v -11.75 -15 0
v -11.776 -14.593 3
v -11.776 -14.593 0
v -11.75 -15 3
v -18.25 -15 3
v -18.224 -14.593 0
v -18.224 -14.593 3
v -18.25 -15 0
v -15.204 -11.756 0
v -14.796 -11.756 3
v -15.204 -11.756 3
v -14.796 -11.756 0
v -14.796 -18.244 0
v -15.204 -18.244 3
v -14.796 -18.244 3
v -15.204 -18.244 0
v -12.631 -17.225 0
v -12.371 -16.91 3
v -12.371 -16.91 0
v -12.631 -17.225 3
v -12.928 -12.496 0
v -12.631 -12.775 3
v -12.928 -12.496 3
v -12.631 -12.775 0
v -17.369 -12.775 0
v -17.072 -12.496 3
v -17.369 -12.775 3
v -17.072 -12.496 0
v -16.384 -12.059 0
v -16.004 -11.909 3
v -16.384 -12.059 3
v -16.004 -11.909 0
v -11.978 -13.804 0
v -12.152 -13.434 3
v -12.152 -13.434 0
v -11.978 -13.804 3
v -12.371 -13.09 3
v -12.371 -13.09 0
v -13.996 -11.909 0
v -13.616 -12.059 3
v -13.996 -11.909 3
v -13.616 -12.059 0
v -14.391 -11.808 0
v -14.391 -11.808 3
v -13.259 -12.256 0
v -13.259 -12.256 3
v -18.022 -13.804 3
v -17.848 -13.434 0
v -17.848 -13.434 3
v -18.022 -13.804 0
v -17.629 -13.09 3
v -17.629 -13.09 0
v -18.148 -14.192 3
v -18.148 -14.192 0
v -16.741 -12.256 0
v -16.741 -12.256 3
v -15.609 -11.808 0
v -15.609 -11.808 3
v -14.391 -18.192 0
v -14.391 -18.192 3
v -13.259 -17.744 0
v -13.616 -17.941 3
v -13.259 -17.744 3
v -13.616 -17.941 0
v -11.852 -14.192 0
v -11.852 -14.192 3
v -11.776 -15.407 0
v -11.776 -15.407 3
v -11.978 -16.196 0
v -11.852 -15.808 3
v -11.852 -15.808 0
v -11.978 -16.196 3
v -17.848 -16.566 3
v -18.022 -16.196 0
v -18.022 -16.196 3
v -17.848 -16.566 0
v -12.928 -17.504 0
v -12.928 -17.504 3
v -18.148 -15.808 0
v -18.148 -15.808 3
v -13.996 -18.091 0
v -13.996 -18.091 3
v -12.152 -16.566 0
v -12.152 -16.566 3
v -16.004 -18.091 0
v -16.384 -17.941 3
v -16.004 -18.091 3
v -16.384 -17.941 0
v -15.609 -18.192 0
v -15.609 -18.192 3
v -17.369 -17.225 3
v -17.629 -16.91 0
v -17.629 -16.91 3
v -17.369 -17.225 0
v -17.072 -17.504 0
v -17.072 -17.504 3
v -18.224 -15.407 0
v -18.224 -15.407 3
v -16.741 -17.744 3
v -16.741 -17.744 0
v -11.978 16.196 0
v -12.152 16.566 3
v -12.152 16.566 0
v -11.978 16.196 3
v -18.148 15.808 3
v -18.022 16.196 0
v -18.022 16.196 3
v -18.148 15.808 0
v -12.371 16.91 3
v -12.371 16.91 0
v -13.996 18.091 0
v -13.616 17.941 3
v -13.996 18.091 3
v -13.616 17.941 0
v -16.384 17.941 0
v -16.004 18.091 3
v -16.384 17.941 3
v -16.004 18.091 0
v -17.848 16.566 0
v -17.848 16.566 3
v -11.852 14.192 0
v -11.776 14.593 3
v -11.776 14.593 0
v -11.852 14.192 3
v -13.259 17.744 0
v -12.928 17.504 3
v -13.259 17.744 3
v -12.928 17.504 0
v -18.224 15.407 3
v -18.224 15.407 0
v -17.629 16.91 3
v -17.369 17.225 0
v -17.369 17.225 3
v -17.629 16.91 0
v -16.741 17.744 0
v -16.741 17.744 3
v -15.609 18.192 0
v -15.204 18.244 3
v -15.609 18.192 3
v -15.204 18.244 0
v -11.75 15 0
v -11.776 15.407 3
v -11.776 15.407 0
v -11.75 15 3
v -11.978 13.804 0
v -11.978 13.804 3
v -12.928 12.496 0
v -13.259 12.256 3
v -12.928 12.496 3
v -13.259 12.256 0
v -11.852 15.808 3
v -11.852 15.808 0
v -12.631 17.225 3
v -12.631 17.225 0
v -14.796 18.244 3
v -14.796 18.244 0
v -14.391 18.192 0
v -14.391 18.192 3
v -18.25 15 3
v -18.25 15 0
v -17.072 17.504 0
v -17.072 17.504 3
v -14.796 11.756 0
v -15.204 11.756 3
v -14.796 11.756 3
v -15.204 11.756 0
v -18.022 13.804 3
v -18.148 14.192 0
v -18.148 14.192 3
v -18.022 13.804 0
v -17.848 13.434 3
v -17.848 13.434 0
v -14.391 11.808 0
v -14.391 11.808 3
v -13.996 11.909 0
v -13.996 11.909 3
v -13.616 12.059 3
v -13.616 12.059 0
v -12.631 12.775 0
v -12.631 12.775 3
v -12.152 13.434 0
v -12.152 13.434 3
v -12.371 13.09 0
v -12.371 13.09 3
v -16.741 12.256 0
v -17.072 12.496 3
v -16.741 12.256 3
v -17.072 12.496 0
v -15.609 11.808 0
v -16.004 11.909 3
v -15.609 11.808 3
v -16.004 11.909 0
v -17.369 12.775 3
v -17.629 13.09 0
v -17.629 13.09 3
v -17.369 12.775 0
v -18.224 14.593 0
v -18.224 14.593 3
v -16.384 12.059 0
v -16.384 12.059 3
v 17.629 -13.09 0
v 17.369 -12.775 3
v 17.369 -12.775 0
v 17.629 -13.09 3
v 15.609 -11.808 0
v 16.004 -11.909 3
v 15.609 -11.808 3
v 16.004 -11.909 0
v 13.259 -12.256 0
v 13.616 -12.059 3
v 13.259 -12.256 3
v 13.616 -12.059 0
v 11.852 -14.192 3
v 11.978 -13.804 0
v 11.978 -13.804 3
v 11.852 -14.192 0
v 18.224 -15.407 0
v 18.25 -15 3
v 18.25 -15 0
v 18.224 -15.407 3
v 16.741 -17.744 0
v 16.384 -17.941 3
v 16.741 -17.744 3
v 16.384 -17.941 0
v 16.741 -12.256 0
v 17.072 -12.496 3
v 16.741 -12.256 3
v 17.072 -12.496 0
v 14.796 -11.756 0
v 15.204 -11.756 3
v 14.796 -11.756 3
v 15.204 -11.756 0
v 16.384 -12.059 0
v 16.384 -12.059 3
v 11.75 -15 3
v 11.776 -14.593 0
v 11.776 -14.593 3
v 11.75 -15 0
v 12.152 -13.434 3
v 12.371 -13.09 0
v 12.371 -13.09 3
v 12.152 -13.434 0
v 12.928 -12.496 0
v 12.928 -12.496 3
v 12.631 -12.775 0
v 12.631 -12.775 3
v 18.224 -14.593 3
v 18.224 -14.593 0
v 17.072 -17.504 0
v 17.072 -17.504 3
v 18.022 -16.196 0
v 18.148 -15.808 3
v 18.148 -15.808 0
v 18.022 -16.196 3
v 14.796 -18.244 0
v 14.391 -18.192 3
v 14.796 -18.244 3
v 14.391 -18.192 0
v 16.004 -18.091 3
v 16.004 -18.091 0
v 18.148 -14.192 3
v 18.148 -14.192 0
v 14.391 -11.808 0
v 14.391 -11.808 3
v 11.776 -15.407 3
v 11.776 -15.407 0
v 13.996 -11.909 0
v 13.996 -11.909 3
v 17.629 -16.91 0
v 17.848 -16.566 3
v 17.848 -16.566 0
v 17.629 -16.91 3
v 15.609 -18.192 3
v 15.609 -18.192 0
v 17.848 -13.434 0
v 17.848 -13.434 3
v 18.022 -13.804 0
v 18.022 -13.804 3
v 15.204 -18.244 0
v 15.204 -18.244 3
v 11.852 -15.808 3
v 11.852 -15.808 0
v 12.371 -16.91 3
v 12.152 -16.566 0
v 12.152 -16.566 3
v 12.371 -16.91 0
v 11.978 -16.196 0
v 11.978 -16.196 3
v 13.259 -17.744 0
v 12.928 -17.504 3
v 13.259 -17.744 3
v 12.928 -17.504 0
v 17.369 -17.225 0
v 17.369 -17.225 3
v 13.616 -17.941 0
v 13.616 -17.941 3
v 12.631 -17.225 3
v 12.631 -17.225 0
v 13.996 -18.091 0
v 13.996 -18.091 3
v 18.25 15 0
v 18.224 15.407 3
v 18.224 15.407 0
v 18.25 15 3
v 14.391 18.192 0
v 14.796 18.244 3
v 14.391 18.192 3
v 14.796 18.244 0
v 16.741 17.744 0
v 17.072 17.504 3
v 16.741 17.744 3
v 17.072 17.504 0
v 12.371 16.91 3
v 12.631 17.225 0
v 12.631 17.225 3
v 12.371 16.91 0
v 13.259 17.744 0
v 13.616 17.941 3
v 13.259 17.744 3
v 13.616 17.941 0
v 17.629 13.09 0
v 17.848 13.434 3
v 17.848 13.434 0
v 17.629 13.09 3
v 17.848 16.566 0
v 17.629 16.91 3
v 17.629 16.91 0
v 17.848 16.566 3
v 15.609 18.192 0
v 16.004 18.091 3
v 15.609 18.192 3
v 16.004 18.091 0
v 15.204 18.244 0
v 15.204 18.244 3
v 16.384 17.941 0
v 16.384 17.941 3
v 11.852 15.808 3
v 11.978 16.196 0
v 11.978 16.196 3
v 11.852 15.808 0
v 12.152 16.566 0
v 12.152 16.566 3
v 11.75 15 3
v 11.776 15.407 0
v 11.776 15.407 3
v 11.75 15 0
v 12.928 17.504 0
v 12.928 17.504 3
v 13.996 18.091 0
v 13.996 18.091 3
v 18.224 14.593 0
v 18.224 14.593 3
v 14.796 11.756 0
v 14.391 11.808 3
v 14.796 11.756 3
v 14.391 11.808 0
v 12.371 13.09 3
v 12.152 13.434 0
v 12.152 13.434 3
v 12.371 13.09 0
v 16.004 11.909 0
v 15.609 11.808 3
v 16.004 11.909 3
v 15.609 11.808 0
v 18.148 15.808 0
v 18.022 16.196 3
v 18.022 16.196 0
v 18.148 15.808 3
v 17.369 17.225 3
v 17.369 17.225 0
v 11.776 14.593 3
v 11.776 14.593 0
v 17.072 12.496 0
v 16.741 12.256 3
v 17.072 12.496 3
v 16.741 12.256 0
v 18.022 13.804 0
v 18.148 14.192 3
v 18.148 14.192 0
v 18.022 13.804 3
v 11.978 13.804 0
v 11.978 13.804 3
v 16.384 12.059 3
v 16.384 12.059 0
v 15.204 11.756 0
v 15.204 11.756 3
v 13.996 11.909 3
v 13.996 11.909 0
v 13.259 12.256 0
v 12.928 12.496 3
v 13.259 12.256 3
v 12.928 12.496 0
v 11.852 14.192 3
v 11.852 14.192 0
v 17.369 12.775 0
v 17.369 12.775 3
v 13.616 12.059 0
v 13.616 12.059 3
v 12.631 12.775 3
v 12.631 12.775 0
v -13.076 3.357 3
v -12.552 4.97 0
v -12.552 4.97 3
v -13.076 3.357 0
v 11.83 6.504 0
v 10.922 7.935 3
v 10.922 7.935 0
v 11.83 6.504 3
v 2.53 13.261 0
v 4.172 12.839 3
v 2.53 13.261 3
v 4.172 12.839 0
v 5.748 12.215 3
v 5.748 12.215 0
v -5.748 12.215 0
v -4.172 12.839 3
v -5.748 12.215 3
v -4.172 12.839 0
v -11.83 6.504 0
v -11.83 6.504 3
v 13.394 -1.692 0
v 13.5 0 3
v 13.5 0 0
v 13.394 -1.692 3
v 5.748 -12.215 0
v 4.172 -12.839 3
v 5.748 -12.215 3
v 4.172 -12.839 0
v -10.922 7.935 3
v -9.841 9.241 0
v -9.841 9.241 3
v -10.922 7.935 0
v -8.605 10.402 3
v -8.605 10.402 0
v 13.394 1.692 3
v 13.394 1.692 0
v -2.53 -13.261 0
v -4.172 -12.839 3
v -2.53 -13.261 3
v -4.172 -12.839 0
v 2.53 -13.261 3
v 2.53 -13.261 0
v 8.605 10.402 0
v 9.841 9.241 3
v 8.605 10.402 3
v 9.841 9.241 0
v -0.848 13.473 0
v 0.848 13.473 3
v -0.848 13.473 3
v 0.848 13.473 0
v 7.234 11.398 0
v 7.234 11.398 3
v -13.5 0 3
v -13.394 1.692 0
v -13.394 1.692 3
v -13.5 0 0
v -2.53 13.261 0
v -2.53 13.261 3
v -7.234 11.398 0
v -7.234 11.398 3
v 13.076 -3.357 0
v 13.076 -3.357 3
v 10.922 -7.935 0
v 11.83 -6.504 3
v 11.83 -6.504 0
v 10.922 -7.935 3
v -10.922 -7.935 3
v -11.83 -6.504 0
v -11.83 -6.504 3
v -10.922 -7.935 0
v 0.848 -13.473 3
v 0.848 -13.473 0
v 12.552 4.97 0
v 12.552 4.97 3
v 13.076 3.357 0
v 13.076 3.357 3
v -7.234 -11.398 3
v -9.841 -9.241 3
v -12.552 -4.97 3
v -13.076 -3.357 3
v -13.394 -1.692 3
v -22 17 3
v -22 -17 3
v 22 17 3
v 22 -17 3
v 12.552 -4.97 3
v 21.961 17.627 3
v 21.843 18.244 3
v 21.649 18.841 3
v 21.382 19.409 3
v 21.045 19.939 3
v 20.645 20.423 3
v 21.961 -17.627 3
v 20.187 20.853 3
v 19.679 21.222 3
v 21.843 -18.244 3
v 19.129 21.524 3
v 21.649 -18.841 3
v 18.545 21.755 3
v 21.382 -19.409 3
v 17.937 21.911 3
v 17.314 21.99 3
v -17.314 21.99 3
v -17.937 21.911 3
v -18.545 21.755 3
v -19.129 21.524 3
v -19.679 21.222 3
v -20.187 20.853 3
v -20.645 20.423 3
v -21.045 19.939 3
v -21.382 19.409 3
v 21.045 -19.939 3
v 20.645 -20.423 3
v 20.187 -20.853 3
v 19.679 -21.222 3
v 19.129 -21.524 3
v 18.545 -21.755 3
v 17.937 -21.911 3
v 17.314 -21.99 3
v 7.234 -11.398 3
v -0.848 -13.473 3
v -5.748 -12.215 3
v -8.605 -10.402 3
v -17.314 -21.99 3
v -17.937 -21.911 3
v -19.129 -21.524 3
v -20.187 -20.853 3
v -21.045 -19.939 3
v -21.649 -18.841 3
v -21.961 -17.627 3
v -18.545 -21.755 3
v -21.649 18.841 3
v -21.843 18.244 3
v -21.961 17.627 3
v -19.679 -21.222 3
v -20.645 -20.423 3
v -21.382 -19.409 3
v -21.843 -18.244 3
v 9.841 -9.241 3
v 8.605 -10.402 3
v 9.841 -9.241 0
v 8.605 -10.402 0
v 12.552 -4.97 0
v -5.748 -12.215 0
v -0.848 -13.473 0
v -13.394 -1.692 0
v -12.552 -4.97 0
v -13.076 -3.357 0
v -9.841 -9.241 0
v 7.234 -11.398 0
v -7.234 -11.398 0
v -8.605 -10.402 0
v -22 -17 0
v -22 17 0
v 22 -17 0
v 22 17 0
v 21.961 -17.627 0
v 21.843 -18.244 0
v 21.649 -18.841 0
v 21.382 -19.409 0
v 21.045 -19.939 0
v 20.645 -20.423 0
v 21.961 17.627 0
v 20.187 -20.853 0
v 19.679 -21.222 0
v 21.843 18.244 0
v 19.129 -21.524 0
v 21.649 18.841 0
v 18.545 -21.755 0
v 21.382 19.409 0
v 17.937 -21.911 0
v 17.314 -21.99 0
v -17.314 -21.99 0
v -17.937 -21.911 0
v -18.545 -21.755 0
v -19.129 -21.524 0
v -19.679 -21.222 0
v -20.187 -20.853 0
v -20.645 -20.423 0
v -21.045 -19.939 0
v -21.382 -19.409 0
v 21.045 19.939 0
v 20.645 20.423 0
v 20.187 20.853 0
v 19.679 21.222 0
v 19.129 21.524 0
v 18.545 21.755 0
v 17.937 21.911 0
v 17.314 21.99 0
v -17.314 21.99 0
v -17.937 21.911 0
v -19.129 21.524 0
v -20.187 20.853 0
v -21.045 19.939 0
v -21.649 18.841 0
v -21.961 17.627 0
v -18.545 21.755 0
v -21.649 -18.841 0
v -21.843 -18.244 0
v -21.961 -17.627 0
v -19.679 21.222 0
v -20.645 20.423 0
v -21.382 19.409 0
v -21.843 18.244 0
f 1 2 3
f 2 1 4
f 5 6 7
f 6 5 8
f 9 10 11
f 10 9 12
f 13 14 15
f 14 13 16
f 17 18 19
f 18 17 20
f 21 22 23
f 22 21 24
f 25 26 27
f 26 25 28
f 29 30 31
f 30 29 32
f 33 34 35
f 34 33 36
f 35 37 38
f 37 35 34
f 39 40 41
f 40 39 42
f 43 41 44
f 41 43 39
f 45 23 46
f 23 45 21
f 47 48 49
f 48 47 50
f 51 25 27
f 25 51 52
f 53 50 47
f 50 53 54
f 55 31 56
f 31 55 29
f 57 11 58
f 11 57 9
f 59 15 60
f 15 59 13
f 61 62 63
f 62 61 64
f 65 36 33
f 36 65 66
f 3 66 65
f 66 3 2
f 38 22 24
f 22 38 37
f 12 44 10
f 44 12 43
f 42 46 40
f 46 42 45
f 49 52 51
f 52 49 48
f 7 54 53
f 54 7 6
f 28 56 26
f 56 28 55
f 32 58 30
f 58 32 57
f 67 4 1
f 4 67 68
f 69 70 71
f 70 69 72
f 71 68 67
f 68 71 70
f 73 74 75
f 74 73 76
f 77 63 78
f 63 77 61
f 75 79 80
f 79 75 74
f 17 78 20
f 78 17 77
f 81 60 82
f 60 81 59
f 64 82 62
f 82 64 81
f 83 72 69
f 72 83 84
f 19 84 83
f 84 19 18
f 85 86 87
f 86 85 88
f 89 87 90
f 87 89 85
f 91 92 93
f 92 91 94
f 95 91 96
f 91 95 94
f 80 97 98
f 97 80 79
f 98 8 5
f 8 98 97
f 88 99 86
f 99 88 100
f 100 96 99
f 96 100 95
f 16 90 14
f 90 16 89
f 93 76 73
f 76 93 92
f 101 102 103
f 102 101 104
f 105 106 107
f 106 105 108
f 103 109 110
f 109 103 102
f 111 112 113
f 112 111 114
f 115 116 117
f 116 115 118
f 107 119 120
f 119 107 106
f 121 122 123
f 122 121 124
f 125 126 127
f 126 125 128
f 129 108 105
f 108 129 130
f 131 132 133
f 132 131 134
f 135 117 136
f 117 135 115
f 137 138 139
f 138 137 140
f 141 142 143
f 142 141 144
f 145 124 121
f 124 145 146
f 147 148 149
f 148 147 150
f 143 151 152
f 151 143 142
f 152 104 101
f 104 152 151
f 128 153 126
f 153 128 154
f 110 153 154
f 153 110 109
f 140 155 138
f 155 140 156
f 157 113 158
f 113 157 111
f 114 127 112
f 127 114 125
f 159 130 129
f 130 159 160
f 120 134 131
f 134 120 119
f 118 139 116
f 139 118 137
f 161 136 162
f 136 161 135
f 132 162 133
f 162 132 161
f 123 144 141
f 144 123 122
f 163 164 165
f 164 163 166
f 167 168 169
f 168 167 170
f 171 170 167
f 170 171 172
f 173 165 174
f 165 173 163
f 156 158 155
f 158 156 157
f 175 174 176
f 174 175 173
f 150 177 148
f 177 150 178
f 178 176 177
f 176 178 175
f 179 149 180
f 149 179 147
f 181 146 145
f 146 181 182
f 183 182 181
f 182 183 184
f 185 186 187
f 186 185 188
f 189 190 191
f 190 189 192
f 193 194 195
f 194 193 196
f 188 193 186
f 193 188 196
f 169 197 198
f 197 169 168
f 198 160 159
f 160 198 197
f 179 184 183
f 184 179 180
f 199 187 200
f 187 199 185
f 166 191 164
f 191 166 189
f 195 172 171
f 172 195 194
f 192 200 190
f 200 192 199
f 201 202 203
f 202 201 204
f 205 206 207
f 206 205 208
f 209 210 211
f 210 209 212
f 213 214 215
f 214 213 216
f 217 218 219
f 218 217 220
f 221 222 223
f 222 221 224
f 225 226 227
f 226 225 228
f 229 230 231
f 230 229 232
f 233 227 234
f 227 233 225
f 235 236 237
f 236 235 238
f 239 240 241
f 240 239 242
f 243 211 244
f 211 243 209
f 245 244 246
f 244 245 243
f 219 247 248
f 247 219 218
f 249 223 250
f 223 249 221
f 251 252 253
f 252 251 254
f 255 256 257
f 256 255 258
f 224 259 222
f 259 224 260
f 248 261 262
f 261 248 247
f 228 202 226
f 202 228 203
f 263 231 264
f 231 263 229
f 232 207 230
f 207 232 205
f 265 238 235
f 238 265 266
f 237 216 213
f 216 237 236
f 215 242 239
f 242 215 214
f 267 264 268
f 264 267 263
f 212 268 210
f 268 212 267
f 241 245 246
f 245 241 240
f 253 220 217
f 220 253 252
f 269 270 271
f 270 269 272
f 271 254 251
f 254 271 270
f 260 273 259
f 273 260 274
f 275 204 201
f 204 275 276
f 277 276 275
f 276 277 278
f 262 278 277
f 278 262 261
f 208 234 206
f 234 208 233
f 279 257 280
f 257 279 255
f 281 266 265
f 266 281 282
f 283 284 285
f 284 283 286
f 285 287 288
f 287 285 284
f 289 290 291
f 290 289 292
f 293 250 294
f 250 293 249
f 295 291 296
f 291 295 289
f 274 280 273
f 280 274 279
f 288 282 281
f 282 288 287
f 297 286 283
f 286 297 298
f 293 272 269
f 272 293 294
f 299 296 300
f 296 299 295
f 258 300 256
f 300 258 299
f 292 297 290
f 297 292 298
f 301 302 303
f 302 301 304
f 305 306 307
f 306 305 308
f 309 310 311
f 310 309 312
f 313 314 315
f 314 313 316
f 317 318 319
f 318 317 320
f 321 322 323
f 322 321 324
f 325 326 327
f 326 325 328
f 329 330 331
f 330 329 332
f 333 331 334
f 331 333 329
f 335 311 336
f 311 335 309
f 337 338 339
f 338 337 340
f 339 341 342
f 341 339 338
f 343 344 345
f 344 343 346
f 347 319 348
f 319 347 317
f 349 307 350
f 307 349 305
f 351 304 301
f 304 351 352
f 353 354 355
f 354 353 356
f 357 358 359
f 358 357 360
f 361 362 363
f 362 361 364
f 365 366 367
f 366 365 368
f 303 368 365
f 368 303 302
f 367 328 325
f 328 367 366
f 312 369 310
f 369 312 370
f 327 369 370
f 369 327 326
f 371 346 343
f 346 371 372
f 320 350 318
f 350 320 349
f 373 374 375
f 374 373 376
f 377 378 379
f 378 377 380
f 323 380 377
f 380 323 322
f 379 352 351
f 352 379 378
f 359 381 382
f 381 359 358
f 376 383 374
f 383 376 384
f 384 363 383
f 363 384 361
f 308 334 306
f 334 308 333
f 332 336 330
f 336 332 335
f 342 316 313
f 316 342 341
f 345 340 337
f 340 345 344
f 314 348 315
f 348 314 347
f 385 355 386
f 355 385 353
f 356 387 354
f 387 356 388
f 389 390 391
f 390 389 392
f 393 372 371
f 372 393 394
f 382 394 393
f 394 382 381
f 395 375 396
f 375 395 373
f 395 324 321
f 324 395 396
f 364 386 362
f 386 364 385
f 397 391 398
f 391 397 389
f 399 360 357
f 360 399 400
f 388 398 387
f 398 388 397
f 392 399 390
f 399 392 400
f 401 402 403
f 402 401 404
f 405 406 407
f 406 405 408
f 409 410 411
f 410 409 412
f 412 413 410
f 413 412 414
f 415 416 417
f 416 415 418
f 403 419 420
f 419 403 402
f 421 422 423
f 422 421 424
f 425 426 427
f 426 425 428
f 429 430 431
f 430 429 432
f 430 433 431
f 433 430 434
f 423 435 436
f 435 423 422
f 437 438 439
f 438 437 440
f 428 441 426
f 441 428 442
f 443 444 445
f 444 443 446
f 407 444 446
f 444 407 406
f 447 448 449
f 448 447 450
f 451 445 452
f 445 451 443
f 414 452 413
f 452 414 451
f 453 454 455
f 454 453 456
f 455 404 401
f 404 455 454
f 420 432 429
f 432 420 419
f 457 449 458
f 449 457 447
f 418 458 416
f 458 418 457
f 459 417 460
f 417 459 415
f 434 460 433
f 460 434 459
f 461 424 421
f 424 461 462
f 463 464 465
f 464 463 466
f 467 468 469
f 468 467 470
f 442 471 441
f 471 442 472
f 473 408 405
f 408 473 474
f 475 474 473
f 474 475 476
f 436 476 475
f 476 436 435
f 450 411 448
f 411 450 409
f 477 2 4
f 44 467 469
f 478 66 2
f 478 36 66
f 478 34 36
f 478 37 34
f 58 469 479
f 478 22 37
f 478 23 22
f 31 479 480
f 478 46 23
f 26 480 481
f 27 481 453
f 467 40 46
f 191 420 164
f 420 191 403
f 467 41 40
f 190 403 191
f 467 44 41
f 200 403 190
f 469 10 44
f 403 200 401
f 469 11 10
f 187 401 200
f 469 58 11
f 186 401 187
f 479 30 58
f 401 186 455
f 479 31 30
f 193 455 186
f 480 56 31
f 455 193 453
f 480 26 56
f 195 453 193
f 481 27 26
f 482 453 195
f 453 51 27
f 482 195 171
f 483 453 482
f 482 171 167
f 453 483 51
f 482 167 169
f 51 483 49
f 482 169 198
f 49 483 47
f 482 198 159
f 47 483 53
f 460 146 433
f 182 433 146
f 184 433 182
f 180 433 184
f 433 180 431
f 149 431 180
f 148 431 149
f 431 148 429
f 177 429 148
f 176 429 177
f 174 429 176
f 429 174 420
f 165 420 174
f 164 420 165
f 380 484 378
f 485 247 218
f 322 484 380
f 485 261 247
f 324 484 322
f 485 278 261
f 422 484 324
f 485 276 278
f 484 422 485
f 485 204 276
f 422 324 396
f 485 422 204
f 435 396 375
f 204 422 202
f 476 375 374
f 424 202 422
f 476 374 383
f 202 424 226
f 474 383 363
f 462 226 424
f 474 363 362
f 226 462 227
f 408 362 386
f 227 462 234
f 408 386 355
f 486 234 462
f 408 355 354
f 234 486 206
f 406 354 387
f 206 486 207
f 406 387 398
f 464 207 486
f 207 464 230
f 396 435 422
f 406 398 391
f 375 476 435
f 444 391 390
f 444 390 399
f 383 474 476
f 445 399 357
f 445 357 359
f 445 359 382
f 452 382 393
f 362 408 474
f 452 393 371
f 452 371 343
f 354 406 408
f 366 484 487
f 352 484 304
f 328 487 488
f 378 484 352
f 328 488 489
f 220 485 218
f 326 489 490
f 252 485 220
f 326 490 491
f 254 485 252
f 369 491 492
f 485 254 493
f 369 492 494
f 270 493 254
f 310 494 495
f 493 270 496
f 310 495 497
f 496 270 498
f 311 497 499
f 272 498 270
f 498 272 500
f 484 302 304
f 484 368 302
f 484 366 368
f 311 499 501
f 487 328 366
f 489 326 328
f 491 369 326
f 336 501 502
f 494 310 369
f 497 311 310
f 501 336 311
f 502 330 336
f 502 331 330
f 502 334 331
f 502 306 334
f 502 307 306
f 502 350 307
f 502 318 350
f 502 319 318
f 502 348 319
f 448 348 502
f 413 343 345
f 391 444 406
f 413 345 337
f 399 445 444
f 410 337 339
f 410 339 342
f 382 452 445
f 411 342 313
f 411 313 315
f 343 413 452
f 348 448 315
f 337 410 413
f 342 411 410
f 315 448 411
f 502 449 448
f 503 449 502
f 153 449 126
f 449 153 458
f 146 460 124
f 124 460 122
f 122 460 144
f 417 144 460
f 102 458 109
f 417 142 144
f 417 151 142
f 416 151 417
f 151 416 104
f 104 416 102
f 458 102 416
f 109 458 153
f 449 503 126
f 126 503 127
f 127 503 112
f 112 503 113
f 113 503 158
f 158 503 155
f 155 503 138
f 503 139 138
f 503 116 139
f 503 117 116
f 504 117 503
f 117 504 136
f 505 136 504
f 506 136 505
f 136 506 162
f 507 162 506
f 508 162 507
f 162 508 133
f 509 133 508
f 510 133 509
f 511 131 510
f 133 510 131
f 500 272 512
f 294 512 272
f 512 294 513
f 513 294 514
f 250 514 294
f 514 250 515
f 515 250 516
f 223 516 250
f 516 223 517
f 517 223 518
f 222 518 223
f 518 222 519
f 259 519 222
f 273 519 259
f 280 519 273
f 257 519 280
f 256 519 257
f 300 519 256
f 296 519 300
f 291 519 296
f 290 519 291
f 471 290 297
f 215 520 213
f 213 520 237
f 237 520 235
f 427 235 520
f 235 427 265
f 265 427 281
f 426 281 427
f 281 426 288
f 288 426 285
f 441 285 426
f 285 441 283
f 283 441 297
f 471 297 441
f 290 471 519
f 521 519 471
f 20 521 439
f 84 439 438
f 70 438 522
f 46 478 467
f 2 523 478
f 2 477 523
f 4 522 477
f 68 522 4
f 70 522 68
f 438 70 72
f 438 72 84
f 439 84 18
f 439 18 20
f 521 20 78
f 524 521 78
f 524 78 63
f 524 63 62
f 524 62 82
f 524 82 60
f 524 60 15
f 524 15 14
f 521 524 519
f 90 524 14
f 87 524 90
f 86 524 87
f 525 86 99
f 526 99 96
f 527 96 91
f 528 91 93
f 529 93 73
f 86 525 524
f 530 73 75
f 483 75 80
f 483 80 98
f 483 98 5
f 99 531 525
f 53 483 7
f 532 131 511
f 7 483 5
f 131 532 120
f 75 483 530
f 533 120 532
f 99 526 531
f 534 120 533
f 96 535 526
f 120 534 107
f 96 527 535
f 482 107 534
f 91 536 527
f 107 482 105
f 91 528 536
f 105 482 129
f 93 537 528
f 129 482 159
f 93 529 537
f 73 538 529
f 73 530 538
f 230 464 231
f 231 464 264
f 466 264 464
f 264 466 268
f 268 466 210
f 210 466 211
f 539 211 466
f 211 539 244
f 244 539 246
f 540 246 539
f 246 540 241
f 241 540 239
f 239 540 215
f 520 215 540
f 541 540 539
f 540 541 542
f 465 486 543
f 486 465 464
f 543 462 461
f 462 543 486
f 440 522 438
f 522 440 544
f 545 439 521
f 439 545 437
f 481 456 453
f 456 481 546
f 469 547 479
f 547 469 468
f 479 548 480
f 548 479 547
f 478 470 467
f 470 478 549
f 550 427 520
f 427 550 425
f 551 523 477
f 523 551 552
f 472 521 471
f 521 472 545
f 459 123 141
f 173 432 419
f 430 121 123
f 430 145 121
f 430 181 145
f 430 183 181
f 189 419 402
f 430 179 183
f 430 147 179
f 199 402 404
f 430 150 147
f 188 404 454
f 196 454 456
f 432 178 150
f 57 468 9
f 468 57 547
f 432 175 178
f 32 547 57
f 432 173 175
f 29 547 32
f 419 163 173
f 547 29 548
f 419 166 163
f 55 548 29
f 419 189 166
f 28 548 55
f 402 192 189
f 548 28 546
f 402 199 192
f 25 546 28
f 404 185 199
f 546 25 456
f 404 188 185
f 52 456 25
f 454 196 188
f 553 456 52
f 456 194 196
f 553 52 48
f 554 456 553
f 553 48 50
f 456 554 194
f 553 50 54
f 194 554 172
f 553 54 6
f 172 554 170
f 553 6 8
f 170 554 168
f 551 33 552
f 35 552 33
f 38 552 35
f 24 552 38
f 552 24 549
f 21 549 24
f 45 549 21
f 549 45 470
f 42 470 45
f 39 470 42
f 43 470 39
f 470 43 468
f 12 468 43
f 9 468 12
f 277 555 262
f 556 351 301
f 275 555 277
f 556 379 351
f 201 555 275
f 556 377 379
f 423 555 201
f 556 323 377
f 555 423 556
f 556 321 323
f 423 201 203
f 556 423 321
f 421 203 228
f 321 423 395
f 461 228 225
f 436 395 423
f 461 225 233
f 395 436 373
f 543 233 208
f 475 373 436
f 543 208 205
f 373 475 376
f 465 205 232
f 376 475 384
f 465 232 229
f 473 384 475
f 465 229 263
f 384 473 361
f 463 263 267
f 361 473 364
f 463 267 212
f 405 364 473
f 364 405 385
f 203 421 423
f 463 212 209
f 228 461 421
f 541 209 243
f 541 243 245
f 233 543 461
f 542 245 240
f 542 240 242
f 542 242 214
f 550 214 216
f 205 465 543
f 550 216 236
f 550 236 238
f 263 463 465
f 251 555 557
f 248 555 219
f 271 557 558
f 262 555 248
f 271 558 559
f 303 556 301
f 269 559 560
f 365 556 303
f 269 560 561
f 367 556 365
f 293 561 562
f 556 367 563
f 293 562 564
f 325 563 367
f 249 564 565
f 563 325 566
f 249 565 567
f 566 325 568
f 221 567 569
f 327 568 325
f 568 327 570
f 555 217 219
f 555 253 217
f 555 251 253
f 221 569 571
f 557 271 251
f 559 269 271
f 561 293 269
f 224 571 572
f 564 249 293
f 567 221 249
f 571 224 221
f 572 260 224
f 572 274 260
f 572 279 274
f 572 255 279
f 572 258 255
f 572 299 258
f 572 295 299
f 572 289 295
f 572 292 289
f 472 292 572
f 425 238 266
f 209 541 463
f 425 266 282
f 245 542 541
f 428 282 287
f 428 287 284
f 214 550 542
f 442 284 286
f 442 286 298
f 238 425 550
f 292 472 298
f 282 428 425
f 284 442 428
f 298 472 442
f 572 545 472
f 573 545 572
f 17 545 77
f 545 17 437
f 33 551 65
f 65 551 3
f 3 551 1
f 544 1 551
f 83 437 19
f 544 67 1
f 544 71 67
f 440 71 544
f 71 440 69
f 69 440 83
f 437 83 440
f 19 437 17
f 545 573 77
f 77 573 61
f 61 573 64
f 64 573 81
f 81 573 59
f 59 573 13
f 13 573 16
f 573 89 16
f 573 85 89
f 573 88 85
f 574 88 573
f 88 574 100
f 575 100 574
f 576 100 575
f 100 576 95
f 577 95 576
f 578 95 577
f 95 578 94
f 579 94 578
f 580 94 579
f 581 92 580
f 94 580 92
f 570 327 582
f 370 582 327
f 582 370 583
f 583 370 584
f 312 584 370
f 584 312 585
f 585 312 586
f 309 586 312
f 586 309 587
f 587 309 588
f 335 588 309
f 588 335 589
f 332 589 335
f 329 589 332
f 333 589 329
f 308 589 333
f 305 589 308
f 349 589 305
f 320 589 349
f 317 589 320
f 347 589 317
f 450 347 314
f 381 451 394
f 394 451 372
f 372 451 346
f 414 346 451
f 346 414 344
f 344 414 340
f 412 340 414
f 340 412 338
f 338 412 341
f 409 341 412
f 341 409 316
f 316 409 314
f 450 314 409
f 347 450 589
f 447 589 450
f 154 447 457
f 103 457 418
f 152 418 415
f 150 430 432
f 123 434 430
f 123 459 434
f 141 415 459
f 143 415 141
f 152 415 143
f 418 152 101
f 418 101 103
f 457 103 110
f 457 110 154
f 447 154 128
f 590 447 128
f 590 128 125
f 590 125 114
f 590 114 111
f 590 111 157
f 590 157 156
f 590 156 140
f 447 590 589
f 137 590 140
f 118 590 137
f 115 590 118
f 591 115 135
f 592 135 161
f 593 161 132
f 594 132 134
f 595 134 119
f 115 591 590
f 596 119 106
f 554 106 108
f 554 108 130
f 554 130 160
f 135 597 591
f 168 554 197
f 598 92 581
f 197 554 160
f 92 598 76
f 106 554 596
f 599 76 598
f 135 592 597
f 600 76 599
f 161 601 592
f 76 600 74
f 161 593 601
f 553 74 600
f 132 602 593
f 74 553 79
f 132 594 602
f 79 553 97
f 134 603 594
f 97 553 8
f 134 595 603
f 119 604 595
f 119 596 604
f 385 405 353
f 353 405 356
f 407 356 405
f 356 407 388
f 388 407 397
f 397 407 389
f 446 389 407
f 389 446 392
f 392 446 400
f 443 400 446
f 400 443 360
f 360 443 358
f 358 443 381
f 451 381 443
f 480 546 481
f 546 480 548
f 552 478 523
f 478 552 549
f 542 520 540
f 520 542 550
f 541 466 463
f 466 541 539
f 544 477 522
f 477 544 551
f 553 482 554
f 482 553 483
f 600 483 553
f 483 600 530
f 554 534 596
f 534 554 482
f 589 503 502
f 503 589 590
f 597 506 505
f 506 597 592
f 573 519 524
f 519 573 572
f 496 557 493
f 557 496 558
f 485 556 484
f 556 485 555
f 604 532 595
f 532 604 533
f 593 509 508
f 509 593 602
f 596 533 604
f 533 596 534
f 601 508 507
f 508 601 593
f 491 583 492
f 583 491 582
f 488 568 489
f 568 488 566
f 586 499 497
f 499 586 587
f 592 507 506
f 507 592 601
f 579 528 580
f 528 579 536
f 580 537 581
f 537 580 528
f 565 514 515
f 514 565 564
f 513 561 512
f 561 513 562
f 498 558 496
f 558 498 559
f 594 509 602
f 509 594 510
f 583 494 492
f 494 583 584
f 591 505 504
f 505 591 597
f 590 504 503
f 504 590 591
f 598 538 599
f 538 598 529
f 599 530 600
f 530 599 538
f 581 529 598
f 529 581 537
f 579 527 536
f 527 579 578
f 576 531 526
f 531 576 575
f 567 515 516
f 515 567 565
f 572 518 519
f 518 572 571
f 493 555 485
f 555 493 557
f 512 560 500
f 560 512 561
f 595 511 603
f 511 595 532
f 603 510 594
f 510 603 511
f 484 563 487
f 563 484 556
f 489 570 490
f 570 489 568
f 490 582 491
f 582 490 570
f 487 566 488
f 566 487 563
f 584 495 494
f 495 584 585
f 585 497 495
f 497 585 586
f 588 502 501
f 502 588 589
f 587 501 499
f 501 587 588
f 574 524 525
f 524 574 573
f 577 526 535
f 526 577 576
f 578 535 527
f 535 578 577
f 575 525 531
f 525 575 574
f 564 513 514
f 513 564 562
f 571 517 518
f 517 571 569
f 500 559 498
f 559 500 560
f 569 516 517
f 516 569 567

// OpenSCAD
$fn = 50;


difference() {
	union() {
		hull() {
			translate(v = [-17.0000000000, 17.0000000000, 0]) {
				cylinder(h = 3, r = 5);
			}
			translate(v = [17.0000000000, 17.0000000000, 0]) {
				cylinder(h = 3, r = 5);
			}
			translate(v = [-17.0000000000, -17.0000000000, 0]) {
				cylinder(h = 3, r = 5);
			}
			translate(v = [17.0000000000, -17.0000000000, 0]) {
				cylinder(h = 3, r = 5);
			}
		}
	}
	union() {
		#translate(v = [-15.0000000000, -15.0000000000, -100.0000000000]) {
			cylinder(h = 200, r = 3.2500000000);
		}
		#translate(v = [-15.0000000000, 15.0000000000, -100.0000000000]) {
			cylinder(h = 200, r = 3.2500000000);
		}
		#translate(v = [15.0000000000, -15.0000000000, -100.0000000000]) {
			cylinder(h = 200, r = 3.2500000000);
		}
		#translate(v = [15.0000000000, 15.0000000000, -100.0000000000]) {
			cylinder(h = 200, r = 3.2500000000);
		}
		#cylinder(h = 3, r = 13.5000000000);
	}
}
